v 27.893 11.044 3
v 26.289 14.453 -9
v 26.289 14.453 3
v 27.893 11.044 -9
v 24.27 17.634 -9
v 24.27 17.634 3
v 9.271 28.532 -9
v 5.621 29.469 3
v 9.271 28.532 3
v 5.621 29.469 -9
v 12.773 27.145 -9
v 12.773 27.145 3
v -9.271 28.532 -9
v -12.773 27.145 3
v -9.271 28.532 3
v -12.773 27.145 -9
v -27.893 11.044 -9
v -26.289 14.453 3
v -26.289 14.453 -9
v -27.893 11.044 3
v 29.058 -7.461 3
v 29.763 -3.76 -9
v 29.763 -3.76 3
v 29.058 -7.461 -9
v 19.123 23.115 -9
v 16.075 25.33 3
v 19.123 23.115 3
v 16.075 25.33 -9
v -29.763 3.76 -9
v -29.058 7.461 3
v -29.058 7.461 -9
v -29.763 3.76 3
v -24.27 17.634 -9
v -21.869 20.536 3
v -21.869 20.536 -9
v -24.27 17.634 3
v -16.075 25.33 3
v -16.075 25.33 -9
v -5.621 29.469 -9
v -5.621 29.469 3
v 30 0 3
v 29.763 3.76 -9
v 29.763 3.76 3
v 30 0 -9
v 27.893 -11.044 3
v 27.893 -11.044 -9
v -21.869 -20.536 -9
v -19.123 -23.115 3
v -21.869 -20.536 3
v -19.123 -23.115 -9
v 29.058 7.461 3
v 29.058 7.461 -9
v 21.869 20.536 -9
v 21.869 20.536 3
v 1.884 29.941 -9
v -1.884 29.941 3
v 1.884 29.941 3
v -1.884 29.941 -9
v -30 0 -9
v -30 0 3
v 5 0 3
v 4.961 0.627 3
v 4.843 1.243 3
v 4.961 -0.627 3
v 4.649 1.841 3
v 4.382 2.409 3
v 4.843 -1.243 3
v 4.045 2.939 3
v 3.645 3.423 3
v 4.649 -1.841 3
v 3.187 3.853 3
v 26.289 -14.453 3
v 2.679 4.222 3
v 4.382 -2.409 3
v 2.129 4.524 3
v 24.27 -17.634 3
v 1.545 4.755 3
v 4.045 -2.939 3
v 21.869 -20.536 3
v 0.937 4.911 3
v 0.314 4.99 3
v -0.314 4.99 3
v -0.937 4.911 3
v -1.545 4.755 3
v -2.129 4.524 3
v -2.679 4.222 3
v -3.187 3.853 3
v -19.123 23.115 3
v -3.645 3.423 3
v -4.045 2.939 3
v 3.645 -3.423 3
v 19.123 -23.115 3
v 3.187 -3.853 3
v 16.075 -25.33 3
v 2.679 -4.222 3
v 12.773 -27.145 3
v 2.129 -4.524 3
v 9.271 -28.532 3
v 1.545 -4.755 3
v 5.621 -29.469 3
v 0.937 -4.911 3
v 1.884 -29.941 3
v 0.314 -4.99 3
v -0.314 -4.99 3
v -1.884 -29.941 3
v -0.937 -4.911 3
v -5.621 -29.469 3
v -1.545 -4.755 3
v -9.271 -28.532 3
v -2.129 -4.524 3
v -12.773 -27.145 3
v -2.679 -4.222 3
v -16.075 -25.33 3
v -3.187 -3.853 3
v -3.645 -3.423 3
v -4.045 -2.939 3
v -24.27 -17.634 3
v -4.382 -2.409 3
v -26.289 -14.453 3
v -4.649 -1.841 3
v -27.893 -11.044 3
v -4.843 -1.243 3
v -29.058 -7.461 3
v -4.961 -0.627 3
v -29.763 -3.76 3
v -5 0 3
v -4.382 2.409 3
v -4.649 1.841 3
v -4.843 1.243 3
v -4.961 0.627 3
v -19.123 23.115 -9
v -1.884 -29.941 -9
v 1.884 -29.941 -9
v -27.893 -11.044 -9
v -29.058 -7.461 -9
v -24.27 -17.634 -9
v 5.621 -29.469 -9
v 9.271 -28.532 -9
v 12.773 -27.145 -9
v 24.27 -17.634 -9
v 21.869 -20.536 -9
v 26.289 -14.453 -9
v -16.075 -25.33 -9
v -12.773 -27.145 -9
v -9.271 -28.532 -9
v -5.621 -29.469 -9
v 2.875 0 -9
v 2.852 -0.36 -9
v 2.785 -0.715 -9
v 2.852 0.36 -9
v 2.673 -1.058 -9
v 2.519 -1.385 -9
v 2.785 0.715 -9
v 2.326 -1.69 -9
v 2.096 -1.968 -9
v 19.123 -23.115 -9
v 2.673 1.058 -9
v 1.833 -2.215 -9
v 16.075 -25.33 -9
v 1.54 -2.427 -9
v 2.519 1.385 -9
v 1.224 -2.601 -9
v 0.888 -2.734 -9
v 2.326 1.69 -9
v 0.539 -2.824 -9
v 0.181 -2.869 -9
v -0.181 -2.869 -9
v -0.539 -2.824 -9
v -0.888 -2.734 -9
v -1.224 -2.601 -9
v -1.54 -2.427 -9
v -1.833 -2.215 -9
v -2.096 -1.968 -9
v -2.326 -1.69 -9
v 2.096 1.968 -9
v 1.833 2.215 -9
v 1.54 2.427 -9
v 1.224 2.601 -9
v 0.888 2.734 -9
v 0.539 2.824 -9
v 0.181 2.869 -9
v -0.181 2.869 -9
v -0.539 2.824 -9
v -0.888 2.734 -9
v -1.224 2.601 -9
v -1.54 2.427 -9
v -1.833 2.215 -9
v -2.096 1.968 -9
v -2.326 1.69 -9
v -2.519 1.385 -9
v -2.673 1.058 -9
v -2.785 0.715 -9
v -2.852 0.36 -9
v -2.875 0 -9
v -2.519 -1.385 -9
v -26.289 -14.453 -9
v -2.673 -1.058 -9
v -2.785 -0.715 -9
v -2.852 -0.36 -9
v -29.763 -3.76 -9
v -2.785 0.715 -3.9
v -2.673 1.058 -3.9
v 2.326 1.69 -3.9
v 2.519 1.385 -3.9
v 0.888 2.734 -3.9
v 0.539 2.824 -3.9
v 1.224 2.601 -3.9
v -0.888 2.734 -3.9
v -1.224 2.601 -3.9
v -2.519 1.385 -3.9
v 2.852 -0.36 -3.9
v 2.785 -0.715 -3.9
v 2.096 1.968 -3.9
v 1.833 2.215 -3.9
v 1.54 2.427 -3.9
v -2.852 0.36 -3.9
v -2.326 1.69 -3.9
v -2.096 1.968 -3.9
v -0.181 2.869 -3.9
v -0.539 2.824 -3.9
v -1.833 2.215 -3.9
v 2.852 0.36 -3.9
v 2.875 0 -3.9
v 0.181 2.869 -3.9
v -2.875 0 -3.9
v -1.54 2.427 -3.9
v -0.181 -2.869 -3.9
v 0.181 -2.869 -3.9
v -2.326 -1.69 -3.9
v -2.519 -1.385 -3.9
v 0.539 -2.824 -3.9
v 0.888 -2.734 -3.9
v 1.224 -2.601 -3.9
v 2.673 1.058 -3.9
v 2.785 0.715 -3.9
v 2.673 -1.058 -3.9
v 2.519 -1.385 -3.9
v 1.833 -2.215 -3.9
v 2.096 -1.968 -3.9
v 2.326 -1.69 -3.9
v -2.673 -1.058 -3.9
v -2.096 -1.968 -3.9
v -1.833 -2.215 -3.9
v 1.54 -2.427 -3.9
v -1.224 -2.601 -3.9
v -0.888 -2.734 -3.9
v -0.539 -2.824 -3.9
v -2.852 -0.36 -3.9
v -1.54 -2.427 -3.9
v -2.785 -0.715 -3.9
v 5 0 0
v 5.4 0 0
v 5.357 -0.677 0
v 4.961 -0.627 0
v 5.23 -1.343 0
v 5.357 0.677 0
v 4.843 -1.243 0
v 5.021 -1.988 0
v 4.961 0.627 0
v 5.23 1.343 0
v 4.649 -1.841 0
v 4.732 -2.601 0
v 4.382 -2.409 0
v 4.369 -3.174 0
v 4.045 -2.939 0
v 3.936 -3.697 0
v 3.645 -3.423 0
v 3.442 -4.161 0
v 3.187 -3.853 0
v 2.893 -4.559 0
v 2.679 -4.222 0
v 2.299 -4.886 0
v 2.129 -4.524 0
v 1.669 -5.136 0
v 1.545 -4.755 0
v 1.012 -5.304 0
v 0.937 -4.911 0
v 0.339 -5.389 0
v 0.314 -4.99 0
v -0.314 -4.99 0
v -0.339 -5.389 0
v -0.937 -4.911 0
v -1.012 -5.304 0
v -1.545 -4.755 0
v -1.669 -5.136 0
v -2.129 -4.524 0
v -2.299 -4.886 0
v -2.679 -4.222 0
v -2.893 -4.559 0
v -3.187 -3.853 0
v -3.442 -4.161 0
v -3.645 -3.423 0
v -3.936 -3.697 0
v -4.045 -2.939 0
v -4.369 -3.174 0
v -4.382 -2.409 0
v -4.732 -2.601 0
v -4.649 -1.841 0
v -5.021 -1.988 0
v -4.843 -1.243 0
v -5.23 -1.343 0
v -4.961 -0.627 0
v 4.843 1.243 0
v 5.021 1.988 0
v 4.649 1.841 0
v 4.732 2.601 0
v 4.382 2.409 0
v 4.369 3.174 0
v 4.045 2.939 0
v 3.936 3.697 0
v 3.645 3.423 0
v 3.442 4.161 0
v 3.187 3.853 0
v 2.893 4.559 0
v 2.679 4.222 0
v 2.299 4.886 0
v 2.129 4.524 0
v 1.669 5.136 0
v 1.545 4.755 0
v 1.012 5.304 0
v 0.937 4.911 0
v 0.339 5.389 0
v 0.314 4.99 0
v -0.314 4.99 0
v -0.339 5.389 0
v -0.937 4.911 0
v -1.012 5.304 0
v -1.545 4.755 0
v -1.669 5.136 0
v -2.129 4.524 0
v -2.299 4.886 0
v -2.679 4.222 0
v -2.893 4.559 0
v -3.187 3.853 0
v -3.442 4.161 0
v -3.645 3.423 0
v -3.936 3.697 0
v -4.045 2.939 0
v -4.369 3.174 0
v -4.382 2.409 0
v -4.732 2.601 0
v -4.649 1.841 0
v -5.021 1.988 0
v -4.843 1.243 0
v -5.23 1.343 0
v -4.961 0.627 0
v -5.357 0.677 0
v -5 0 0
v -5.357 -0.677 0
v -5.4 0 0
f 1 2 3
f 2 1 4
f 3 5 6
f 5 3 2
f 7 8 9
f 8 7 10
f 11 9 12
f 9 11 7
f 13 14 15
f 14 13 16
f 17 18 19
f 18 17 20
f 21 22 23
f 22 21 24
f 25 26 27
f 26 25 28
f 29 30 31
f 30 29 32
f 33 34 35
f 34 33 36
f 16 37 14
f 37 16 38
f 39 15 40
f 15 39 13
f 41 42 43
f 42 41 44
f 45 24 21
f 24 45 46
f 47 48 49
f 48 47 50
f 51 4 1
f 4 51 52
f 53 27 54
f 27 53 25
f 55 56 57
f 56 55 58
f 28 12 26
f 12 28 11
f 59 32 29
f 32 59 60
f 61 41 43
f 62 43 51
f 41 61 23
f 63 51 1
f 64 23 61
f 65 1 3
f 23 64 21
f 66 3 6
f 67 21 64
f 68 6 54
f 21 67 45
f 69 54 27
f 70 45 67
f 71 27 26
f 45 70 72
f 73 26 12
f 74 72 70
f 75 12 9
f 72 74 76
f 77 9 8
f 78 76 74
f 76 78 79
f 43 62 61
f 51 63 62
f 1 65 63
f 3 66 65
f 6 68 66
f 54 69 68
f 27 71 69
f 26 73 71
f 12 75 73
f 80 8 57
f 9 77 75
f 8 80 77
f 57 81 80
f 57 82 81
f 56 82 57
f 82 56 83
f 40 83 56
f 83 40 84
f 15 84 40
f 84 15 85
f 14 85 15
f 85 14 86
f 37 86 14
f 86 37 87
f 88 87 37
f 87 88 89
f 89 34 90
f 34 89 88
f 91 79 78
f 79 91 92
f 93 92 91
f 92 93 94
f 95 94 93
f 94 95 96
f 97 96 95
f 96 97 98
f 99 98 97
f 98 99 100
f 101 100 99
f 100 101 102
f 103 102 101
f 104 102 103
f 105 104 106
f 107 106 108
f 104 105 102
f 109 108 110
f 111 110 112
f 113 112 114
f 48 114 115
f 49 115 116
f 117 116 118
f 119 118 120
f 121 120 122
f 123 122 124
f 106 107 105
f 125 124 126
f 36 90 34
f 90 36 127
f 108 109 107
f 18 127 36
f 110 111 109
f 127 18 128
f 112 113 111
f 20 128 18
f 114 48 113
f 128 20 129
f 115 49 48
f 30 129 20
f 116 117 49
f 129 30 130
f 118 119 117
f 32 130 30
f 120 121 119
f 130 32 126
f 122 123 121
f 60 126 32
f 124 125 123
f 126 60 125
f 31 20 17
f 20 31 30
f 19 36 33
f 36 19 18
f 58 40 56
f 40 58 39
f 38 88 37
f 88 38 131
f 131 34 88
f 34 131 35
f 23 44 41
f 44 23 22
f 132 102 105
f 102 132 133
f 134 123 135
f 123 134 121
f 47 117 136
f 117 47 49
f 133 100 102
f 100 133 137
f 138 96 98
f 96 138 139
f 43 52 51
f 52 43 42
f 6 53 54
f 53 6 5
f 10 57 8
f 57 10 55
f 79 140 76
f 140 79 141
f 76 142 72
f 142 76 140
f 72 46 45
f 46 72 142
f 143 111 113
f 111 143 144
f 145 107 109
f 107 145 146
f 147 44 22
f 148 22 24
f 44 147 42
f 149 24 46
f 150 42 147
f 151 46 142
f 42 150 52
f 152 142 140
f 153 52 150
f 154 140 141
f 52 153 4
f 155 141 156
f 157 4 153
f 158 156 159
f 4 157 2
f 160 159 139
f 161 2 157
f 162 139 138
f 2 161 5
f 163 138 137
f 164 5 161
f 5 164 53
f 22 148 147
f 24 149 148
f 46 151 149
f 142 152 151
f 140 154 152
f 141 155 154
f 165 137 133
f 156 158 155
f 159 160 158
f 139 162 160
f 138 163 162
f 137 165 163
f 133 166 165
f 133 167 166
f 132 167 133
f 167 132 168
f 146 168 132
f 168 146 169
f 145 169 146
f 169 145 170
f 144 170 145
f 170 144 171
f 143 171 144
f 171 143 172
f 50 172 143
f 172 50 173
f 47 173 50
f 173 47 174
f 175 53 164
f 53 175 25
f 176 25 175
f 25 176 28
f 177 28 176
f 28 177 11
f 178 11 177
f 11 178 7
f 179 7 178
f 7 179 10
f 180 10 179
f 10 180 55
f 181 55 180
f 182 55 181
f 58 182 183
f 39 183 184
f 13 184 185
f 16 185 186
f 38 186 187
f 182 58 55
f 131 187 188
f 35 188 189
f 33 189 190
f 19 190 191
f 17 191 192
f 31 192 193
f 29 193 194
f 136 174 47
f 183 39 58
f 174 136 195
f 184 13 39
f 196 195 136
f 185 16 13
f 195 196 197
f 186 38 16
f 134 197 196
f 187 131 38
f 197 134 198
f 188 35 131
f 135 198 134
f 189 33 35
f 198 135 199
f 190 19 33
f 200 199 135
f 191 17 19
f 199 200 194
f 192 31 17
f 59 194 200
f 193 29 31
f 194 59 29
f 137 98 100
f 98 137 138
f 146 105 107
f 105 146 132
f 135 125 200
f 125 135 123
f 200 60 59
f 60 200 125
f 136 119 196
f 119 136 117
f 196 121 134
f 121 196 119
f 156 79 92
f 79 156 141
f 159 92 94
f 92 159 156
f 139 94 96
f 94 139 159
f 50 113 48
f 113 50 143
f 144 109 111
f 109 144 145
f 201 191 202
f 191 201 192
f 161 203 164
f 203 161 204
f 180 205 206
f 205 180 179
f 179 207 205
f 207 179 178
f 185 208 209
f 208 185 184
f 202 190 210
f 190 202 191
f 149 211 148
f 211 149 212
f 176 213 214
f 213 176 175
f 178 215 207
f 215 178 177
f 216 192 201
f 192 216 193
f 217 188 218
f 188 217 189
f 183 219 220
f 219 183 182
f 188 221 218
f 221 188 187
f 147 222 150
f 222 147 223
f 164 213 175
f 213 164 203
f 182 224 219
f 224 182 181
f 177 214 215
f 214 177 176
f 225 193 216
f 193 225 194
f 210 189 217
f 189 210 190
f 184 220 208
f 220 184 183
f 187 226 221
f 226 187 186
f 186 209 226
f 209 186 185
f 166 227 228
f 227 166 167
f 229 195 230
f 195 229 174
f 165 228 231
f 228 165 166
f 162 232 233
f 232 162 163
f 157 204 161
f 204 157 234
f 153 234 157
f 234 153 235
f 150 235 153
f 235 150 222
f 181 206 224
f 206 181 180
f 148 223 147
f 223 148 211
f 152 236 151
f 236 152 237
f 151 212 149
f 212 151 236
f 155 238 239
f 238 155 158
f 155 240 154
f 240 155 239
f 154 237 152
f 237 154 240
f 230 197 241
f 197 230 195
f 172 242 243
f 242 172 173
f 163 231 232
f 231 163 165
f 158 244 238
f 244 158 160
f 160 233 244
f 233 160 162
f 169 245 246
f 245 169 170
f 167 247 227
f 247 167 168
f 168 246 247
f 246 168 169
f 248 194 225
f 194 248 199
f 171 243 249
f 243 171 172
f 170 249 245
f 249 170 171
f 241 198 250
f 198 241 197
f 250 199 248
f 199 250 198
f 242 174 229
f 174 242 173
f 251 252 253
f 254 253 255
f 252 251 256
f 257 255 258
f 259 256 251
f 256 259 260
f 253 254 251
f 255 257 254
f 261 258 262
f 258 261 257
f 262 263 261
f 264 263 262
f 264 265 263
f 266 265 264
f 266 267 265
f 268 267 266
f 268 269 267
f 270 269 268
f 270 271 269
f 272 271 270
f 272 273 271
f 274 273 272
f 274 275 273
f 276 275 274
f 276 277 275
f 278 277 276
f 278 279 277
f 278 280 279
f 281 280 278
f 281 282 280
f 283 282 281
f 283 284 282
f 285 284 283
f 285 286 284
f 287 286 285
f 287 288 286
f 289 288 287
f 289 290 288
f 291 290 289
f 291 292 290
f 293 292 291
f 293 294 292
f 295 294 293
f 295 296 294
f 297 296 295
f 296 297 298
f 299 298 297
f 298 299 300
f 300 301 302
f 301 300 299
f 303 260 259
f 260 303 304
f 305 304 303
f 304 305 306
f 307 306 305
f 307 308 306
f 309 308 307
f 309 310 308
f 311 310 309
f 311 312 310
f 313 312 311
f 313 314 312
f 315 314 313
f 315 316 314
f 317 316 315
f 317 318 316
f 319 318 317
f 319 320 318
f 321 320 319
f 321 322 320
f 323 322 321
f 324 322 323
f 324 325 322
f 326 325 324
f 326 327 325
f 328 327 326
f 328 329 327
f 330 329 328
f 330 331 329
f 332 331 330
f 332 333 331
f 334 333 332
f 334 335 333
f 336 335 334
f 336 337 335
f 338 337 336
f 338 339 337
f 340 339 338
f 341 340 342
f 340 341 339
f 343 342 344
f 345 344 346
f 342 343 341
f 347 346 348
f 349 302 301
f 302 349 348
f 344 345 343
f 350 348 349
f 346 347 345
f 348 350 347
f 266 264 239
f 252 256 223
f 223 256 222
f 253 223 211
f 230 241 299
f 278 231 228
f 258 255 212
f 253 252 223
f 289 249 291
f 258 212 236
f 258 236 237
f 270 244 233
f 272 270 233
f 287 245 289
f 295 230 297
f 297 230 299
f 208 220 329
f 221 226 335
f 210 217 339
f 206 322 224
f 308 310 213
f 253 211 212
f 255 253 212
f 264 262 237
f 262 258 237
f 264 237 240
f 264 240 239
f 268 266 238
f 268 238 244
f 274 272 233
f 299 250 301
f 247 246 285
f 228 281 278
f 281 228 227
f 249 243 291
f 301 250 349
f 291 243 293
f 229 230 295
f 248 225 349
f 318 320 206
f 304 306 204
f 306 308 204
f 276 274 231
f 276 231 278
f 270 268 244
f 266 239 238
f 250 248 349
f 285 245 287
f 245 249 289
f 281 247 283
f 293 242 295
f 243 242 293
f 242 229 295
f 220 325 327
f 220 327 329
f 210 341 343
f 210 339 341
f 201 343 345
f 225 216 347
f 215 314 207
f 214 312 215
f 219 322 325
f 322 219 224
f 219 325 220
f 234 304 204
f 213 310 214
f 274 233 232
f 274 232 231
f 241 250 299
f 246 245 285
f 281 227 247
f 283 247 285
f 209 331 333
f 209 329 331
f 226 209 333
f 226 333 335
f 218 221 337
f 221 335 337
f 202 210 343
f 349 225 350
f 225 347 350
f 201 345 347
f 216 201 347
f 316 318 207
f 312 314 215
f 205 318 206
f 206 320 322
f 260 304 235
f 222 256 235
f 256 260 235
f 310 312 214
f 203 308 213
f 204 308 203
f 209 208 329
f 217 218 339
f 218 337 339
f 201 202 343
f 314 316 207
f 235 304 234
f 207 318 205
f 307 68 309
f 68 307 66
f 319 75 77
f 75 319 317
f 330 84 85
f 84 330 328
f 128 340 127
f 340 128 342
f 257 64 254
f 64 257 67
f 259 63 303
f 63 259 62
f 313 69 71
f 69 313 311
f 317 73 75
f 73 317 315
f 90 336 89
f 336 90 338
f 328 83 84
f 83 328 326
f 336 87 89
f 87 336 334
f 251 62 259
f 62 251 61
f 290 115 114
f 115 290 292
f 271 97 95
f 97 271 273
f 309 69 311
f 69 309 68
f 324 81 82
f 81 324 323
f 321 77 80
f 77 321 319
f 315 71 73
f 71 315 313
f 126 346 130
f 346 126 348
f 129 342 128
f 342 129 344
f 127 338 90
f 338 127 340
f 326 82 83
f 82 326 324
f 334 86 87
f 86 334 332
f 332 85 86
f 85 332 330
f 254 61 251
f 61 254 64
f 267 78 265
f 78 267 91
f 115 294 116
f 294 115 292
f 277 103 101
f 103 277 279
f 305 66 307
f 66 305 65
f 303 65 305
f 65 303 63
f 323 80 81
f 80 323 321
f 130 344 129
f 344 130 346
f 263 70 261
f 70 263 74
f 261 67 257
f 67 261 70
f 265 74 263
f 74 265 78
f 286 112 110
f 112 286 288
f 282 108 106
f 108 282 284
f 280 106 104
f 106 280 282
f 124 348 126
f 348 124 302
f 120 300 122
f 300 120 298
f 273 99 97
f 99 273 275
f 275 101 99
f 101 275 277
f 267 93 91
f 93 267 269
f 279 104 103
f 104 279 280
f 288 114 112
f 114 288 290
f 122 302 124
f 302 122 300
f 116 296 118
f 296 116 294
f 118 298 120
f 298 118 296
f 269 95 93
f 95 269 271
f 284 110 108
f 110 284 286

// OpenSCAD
$fn = 50;


difference() {
	union() {
		translate(v = [0, 0, -9.0000000000]) {
			cylinder(h = 12, r = 30.0000000000);
		}
		#translate(v = [0, 0, -12.0000000000]) {
			cylinder(h = 12, r = 2.8750000000);
		}
	}
	union() {
		translate(v = [0, 0, 0]) {
			rotate(a = [0, 0, 0]) {
				difference() {
					union() {
						translate(v = [0, 0, -12.0000000000]) {
							cylinder(h = 12, r = 2.6000000000);
						}
						translate(v = [0, 0, -3.9000000000]) {
							cylinder(h = 3.9000000000, r1 = 2.8750000000, r2 = 5.4000000000);
						}
						translate(v = [0, 0, -12.0000000000]) {
							cylinder(h = 12, r = 2.8750000000);
						}
						translate(v = [0, 0, -12.0000000000]) {
							cylinder(h = 12, r = 2.6000000000);
						}
					}
					union();
				}
			}
		}
		#cylinder(h = 3, r = 5.0000000000);
	}
}
